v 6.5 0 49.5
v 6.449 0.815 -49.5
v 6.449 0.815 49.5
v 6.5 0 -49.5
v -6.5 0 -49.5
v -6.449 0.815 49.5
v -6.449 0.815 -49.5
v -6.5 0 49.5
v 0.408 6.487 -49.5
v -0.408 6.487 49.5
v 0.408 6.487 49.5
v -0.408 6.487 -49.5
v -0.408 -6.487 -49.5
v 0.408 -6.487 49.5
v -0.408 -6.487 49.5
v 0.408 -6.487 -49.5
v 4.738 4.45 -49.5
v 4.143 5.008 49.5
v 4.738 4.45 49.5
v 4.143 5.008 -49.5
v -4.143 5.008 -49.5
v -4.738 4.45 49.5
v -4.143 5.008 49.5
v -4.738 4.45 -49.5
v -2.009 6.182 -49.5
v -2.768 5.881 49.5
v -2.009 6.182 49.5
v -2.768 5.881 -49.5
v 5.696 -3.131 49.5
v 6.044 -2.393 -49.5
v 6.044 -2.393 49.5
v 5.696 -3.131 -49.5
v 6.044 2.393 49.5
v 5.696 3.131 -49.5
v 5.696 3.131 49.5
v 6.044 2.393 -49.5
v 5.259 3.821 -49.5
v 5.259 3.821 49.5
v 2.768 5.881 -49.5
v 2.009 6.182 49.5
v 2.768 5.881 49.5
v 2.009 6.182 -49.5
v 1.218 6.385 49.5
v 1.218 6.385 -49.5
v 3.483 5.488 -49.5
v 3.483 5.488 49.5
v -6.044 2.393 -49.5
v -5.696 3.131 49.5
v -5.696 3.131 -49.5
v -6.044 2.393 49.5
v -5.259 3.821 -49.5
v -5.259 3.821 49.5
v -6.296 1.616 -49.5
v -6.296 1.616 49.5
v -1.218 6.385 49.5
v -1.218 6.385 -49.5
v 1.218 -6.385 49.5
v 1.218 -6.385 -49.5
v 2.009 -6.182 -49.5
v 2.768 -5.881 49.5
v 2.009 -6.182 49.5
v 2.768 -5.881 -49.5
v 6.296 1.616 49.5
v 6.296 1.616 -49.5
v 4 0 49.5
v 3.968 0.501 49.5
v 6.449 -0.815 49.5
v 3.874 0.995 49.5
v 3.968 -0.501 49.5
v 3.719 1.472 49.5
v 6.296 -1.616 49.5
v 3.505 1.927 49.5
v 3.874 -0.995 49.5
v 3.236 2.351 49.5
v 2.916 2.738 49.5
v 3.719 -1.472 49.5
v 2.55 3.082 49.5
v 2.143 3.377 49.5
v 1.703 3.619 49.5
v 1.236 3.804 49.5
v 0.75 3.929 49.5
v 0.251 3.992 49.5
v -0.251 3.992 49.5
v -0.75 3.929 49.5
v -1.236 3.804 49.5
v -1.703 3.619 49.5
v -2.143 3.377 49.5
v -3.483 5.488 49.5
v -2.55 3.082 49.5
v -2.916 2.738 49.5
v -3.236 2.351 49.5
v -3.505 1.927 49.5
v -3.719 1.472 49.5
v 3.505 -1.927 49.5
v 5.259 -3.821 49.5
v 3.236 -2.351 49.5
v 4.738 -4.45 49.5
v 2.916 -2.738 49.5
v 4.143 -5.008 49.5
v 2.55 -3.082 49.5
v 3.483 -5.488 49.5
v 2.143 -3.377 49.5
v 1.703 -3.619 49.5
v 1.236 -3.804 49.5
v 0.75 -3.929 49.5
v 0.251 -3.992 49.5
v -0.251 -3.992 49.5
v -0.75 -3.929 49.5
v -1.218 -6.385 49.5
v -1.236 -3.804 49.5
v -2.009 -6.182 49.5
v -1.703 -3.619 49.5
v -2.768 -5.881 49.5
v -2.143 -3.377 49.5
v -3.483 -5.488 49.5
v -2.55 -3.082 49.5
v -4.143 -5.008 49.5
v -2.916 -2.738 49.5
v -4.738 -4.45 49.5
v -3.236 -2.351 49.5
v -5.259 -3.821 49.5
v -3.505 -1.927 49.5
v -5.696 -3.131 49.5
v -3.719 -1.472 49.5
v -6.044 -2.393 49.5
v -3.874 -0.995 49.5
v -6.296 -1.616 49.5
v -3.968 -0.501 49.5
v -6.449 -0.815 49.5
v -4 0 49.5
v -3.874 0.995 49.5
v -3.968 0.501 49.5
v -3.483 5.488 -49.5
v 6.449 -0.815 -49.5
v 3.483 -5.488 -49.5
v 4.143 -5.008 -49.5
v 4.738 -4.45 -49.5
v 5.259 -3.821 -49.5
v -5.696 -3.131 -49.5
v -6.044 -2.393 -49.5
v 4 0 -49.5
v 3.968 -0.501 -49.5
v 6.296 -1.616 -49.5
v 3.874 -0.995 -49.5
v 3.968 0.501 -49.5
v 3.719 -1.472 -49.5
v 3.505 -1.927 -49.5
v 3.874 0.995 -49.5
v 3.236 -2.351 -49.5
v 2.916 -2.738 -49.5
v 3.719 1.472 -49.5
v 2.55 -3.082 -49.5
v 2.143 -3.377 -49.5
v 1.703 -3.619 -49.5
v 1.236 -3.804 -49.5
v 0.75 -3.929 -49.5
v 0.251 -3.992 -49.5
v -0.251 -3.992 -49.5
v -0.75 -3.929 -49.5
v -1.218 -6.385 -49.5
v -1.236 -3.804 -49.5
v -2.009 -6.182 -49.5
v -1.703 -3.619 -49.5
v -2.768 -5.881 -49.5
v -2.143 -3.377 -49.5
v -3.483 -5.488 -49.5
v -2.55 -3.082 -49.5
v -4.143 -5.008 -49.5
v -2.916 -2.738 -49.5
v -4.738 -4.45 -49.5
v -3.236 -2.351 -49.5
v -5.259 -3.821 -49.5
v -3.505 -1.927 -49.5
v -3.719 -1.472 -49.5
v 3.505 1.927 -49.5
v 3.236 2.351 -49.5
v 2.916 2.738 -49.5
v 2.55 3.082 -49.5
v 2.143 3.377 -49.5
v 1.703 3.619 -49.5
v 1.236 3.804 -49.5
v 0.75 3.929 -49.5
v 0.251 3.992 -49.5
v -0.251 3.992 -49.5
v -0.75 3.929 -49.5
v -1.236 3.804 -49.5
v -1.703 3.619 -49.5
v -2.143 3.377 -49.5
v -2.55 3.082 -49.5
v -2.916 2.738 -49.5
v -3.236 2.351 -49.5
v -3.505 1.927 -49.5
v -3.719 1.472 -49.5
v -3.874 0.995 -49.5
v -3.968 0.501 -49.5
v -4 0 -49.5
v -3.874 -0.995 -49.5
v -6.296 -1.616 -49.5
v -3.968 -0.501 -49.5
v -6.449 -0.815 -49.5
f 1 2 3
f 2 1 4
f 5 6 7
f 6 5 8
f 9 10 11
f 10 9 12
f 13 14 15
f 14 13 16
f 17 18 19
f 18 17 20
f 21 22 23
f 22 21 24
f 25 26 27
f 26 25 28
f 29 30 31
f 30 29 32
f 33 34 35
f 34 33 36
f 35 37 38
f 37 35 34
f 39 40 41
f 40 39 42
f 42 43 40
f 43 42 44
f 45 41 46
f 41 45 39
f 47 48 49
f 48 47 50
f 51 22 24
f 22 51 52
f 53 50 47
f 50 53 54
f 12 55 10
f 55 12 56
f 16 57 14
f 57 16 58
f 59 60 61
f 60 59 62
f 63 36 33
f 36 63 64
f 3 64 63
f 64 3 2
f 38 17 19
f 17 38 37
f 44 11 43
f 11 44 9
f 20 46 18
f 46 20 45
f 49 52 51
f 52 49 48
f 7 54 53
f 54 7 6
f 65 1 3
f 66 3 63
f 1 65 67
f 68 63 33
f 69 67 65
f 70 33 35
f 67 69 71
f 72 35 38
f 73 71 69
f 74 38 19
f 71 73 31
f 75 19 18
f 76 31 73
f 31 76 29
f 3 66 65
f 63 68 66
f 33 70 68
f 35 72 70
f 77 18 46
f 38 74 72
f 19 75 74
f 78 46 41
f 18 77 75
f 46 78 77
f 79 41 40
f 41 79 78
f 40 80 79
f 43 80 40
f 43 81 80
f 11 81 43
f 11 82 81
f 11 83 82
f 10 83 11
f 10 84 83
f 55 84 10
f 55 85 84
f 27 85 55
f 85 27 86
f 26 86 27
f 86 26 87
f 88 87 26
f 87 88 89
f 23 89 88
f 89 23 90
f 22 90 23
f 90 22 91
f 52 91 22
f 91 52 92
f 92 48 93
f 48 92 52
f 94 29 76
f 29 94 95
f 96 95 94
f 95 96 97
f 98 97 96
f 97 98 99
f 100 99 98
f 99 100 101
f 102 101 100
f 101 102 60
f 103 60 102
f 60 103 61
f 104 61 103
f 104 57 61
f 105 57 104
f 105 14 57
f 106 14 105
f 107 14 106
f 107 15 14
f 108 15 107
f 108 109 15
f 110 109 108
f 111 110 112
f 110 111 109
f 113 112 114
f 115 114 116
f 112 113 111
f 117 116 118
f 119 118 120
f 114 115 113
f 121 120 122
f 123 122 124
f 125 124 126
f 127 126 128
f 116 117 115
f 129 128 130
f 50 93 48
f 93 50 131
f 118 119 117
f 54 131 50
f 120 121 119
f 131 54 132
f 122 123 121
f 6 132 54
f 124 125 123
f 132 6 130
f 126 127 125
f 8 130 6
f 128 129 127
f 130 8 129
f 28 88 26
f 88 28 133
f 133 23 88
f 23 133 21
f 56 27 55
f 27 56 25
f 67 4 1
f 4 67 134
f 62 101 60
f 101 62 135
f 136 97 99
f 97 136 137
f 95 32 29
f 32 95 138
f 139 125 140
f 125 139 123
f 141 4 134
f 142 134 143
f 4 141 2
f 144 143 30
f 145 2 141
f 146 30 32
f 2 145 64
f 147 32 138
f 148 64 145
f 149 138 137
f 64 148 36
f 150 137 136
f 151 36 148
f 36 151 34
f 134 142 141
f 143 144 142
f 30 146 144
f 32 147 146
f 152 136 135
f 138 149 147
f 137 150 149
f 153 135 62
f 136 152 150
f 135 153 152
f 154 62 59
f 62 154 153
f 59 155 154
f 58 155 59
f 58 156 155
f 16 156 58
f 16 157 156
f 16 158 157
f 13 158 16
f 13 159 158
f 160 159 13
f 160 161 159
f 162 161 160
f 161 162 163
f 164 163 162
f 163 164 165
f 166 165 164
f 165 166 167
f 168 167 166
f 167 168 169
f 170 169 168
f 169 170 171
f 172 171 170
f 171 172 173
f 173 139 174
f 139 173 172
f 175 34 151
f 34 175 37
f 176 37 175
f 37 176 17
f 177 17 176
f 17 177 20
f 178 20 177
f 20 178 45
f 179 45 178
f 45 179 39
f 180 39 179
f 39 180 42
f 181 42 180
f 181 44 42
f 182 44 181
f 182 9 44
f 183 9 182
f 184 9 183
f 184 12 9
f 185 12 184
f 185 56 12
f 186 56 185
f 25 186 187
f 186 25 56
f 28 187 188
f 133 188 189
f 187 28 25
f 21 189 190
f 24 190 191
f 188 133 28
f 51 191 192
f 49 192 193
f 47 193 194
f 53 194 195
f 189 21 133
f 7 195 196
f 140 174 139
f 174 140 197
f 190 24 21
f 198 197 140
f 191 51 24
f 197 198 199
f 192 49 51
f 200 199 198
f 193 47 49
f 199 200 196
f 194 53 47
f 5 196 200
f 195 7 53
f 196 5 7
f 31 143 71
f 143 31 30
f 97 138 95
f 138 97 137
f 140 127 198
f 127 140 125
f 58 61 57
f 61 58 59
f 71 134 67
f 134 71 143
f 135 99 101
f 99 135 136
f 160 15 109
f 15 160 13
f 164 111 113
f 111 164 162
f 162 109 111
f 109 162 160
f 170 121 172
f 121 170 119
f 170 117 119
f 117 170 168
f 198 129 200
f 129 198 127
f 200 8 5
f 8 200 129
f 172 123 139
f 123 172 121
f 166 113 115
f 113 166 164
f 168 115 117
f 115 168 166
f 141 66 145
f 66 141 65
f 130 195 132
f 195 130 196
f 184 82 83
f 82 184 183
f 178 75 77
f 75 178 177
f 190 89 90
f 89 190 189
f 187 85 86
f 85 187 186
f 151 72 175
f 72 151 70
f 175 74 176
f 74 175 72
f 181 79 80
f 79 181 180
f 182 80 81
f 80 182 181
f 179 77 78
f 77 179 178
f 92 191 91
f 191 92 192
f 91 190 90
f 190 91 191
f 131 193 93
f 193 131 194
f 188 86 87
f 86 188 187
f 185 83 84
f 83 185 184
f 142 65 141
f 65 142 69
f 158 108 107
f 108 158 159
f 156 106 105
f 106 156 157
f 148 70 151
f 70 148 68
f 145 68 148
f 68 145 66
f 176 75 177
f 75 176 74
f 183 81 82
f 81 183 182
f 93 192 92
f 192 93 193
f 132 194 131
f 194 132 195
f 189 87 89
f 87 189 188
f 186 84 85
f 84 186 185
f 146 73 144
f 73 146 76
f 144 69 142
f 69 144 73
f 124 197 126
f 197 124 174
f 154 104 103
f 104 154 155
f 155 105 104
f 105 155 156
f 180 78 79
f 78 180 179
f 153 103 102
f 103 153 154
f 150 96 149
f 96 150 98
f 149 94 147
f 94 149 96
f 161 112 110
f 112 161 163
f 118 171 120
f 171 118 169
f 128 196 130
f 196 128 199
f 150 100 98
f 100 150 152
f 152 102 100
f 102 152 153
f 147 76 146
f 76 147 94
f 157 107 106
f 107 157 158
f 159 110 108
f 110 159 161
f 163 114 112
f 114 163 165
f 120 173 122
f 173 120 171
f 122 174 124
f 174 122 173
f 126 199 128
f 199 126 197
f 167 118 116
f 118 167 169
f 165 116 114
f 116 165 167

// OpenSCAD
$fn = 50;


difference() {
	union() {
		translate(v = [0, 0, -49.5000000000]) {
			cylinder(h = 99, r = 6.5000000000);
		}
	}
	union() {
		translate(v = [0, 0, -100.0000000000]) {
			cylinder(h = 200, r = 4);
		}
	}
}
